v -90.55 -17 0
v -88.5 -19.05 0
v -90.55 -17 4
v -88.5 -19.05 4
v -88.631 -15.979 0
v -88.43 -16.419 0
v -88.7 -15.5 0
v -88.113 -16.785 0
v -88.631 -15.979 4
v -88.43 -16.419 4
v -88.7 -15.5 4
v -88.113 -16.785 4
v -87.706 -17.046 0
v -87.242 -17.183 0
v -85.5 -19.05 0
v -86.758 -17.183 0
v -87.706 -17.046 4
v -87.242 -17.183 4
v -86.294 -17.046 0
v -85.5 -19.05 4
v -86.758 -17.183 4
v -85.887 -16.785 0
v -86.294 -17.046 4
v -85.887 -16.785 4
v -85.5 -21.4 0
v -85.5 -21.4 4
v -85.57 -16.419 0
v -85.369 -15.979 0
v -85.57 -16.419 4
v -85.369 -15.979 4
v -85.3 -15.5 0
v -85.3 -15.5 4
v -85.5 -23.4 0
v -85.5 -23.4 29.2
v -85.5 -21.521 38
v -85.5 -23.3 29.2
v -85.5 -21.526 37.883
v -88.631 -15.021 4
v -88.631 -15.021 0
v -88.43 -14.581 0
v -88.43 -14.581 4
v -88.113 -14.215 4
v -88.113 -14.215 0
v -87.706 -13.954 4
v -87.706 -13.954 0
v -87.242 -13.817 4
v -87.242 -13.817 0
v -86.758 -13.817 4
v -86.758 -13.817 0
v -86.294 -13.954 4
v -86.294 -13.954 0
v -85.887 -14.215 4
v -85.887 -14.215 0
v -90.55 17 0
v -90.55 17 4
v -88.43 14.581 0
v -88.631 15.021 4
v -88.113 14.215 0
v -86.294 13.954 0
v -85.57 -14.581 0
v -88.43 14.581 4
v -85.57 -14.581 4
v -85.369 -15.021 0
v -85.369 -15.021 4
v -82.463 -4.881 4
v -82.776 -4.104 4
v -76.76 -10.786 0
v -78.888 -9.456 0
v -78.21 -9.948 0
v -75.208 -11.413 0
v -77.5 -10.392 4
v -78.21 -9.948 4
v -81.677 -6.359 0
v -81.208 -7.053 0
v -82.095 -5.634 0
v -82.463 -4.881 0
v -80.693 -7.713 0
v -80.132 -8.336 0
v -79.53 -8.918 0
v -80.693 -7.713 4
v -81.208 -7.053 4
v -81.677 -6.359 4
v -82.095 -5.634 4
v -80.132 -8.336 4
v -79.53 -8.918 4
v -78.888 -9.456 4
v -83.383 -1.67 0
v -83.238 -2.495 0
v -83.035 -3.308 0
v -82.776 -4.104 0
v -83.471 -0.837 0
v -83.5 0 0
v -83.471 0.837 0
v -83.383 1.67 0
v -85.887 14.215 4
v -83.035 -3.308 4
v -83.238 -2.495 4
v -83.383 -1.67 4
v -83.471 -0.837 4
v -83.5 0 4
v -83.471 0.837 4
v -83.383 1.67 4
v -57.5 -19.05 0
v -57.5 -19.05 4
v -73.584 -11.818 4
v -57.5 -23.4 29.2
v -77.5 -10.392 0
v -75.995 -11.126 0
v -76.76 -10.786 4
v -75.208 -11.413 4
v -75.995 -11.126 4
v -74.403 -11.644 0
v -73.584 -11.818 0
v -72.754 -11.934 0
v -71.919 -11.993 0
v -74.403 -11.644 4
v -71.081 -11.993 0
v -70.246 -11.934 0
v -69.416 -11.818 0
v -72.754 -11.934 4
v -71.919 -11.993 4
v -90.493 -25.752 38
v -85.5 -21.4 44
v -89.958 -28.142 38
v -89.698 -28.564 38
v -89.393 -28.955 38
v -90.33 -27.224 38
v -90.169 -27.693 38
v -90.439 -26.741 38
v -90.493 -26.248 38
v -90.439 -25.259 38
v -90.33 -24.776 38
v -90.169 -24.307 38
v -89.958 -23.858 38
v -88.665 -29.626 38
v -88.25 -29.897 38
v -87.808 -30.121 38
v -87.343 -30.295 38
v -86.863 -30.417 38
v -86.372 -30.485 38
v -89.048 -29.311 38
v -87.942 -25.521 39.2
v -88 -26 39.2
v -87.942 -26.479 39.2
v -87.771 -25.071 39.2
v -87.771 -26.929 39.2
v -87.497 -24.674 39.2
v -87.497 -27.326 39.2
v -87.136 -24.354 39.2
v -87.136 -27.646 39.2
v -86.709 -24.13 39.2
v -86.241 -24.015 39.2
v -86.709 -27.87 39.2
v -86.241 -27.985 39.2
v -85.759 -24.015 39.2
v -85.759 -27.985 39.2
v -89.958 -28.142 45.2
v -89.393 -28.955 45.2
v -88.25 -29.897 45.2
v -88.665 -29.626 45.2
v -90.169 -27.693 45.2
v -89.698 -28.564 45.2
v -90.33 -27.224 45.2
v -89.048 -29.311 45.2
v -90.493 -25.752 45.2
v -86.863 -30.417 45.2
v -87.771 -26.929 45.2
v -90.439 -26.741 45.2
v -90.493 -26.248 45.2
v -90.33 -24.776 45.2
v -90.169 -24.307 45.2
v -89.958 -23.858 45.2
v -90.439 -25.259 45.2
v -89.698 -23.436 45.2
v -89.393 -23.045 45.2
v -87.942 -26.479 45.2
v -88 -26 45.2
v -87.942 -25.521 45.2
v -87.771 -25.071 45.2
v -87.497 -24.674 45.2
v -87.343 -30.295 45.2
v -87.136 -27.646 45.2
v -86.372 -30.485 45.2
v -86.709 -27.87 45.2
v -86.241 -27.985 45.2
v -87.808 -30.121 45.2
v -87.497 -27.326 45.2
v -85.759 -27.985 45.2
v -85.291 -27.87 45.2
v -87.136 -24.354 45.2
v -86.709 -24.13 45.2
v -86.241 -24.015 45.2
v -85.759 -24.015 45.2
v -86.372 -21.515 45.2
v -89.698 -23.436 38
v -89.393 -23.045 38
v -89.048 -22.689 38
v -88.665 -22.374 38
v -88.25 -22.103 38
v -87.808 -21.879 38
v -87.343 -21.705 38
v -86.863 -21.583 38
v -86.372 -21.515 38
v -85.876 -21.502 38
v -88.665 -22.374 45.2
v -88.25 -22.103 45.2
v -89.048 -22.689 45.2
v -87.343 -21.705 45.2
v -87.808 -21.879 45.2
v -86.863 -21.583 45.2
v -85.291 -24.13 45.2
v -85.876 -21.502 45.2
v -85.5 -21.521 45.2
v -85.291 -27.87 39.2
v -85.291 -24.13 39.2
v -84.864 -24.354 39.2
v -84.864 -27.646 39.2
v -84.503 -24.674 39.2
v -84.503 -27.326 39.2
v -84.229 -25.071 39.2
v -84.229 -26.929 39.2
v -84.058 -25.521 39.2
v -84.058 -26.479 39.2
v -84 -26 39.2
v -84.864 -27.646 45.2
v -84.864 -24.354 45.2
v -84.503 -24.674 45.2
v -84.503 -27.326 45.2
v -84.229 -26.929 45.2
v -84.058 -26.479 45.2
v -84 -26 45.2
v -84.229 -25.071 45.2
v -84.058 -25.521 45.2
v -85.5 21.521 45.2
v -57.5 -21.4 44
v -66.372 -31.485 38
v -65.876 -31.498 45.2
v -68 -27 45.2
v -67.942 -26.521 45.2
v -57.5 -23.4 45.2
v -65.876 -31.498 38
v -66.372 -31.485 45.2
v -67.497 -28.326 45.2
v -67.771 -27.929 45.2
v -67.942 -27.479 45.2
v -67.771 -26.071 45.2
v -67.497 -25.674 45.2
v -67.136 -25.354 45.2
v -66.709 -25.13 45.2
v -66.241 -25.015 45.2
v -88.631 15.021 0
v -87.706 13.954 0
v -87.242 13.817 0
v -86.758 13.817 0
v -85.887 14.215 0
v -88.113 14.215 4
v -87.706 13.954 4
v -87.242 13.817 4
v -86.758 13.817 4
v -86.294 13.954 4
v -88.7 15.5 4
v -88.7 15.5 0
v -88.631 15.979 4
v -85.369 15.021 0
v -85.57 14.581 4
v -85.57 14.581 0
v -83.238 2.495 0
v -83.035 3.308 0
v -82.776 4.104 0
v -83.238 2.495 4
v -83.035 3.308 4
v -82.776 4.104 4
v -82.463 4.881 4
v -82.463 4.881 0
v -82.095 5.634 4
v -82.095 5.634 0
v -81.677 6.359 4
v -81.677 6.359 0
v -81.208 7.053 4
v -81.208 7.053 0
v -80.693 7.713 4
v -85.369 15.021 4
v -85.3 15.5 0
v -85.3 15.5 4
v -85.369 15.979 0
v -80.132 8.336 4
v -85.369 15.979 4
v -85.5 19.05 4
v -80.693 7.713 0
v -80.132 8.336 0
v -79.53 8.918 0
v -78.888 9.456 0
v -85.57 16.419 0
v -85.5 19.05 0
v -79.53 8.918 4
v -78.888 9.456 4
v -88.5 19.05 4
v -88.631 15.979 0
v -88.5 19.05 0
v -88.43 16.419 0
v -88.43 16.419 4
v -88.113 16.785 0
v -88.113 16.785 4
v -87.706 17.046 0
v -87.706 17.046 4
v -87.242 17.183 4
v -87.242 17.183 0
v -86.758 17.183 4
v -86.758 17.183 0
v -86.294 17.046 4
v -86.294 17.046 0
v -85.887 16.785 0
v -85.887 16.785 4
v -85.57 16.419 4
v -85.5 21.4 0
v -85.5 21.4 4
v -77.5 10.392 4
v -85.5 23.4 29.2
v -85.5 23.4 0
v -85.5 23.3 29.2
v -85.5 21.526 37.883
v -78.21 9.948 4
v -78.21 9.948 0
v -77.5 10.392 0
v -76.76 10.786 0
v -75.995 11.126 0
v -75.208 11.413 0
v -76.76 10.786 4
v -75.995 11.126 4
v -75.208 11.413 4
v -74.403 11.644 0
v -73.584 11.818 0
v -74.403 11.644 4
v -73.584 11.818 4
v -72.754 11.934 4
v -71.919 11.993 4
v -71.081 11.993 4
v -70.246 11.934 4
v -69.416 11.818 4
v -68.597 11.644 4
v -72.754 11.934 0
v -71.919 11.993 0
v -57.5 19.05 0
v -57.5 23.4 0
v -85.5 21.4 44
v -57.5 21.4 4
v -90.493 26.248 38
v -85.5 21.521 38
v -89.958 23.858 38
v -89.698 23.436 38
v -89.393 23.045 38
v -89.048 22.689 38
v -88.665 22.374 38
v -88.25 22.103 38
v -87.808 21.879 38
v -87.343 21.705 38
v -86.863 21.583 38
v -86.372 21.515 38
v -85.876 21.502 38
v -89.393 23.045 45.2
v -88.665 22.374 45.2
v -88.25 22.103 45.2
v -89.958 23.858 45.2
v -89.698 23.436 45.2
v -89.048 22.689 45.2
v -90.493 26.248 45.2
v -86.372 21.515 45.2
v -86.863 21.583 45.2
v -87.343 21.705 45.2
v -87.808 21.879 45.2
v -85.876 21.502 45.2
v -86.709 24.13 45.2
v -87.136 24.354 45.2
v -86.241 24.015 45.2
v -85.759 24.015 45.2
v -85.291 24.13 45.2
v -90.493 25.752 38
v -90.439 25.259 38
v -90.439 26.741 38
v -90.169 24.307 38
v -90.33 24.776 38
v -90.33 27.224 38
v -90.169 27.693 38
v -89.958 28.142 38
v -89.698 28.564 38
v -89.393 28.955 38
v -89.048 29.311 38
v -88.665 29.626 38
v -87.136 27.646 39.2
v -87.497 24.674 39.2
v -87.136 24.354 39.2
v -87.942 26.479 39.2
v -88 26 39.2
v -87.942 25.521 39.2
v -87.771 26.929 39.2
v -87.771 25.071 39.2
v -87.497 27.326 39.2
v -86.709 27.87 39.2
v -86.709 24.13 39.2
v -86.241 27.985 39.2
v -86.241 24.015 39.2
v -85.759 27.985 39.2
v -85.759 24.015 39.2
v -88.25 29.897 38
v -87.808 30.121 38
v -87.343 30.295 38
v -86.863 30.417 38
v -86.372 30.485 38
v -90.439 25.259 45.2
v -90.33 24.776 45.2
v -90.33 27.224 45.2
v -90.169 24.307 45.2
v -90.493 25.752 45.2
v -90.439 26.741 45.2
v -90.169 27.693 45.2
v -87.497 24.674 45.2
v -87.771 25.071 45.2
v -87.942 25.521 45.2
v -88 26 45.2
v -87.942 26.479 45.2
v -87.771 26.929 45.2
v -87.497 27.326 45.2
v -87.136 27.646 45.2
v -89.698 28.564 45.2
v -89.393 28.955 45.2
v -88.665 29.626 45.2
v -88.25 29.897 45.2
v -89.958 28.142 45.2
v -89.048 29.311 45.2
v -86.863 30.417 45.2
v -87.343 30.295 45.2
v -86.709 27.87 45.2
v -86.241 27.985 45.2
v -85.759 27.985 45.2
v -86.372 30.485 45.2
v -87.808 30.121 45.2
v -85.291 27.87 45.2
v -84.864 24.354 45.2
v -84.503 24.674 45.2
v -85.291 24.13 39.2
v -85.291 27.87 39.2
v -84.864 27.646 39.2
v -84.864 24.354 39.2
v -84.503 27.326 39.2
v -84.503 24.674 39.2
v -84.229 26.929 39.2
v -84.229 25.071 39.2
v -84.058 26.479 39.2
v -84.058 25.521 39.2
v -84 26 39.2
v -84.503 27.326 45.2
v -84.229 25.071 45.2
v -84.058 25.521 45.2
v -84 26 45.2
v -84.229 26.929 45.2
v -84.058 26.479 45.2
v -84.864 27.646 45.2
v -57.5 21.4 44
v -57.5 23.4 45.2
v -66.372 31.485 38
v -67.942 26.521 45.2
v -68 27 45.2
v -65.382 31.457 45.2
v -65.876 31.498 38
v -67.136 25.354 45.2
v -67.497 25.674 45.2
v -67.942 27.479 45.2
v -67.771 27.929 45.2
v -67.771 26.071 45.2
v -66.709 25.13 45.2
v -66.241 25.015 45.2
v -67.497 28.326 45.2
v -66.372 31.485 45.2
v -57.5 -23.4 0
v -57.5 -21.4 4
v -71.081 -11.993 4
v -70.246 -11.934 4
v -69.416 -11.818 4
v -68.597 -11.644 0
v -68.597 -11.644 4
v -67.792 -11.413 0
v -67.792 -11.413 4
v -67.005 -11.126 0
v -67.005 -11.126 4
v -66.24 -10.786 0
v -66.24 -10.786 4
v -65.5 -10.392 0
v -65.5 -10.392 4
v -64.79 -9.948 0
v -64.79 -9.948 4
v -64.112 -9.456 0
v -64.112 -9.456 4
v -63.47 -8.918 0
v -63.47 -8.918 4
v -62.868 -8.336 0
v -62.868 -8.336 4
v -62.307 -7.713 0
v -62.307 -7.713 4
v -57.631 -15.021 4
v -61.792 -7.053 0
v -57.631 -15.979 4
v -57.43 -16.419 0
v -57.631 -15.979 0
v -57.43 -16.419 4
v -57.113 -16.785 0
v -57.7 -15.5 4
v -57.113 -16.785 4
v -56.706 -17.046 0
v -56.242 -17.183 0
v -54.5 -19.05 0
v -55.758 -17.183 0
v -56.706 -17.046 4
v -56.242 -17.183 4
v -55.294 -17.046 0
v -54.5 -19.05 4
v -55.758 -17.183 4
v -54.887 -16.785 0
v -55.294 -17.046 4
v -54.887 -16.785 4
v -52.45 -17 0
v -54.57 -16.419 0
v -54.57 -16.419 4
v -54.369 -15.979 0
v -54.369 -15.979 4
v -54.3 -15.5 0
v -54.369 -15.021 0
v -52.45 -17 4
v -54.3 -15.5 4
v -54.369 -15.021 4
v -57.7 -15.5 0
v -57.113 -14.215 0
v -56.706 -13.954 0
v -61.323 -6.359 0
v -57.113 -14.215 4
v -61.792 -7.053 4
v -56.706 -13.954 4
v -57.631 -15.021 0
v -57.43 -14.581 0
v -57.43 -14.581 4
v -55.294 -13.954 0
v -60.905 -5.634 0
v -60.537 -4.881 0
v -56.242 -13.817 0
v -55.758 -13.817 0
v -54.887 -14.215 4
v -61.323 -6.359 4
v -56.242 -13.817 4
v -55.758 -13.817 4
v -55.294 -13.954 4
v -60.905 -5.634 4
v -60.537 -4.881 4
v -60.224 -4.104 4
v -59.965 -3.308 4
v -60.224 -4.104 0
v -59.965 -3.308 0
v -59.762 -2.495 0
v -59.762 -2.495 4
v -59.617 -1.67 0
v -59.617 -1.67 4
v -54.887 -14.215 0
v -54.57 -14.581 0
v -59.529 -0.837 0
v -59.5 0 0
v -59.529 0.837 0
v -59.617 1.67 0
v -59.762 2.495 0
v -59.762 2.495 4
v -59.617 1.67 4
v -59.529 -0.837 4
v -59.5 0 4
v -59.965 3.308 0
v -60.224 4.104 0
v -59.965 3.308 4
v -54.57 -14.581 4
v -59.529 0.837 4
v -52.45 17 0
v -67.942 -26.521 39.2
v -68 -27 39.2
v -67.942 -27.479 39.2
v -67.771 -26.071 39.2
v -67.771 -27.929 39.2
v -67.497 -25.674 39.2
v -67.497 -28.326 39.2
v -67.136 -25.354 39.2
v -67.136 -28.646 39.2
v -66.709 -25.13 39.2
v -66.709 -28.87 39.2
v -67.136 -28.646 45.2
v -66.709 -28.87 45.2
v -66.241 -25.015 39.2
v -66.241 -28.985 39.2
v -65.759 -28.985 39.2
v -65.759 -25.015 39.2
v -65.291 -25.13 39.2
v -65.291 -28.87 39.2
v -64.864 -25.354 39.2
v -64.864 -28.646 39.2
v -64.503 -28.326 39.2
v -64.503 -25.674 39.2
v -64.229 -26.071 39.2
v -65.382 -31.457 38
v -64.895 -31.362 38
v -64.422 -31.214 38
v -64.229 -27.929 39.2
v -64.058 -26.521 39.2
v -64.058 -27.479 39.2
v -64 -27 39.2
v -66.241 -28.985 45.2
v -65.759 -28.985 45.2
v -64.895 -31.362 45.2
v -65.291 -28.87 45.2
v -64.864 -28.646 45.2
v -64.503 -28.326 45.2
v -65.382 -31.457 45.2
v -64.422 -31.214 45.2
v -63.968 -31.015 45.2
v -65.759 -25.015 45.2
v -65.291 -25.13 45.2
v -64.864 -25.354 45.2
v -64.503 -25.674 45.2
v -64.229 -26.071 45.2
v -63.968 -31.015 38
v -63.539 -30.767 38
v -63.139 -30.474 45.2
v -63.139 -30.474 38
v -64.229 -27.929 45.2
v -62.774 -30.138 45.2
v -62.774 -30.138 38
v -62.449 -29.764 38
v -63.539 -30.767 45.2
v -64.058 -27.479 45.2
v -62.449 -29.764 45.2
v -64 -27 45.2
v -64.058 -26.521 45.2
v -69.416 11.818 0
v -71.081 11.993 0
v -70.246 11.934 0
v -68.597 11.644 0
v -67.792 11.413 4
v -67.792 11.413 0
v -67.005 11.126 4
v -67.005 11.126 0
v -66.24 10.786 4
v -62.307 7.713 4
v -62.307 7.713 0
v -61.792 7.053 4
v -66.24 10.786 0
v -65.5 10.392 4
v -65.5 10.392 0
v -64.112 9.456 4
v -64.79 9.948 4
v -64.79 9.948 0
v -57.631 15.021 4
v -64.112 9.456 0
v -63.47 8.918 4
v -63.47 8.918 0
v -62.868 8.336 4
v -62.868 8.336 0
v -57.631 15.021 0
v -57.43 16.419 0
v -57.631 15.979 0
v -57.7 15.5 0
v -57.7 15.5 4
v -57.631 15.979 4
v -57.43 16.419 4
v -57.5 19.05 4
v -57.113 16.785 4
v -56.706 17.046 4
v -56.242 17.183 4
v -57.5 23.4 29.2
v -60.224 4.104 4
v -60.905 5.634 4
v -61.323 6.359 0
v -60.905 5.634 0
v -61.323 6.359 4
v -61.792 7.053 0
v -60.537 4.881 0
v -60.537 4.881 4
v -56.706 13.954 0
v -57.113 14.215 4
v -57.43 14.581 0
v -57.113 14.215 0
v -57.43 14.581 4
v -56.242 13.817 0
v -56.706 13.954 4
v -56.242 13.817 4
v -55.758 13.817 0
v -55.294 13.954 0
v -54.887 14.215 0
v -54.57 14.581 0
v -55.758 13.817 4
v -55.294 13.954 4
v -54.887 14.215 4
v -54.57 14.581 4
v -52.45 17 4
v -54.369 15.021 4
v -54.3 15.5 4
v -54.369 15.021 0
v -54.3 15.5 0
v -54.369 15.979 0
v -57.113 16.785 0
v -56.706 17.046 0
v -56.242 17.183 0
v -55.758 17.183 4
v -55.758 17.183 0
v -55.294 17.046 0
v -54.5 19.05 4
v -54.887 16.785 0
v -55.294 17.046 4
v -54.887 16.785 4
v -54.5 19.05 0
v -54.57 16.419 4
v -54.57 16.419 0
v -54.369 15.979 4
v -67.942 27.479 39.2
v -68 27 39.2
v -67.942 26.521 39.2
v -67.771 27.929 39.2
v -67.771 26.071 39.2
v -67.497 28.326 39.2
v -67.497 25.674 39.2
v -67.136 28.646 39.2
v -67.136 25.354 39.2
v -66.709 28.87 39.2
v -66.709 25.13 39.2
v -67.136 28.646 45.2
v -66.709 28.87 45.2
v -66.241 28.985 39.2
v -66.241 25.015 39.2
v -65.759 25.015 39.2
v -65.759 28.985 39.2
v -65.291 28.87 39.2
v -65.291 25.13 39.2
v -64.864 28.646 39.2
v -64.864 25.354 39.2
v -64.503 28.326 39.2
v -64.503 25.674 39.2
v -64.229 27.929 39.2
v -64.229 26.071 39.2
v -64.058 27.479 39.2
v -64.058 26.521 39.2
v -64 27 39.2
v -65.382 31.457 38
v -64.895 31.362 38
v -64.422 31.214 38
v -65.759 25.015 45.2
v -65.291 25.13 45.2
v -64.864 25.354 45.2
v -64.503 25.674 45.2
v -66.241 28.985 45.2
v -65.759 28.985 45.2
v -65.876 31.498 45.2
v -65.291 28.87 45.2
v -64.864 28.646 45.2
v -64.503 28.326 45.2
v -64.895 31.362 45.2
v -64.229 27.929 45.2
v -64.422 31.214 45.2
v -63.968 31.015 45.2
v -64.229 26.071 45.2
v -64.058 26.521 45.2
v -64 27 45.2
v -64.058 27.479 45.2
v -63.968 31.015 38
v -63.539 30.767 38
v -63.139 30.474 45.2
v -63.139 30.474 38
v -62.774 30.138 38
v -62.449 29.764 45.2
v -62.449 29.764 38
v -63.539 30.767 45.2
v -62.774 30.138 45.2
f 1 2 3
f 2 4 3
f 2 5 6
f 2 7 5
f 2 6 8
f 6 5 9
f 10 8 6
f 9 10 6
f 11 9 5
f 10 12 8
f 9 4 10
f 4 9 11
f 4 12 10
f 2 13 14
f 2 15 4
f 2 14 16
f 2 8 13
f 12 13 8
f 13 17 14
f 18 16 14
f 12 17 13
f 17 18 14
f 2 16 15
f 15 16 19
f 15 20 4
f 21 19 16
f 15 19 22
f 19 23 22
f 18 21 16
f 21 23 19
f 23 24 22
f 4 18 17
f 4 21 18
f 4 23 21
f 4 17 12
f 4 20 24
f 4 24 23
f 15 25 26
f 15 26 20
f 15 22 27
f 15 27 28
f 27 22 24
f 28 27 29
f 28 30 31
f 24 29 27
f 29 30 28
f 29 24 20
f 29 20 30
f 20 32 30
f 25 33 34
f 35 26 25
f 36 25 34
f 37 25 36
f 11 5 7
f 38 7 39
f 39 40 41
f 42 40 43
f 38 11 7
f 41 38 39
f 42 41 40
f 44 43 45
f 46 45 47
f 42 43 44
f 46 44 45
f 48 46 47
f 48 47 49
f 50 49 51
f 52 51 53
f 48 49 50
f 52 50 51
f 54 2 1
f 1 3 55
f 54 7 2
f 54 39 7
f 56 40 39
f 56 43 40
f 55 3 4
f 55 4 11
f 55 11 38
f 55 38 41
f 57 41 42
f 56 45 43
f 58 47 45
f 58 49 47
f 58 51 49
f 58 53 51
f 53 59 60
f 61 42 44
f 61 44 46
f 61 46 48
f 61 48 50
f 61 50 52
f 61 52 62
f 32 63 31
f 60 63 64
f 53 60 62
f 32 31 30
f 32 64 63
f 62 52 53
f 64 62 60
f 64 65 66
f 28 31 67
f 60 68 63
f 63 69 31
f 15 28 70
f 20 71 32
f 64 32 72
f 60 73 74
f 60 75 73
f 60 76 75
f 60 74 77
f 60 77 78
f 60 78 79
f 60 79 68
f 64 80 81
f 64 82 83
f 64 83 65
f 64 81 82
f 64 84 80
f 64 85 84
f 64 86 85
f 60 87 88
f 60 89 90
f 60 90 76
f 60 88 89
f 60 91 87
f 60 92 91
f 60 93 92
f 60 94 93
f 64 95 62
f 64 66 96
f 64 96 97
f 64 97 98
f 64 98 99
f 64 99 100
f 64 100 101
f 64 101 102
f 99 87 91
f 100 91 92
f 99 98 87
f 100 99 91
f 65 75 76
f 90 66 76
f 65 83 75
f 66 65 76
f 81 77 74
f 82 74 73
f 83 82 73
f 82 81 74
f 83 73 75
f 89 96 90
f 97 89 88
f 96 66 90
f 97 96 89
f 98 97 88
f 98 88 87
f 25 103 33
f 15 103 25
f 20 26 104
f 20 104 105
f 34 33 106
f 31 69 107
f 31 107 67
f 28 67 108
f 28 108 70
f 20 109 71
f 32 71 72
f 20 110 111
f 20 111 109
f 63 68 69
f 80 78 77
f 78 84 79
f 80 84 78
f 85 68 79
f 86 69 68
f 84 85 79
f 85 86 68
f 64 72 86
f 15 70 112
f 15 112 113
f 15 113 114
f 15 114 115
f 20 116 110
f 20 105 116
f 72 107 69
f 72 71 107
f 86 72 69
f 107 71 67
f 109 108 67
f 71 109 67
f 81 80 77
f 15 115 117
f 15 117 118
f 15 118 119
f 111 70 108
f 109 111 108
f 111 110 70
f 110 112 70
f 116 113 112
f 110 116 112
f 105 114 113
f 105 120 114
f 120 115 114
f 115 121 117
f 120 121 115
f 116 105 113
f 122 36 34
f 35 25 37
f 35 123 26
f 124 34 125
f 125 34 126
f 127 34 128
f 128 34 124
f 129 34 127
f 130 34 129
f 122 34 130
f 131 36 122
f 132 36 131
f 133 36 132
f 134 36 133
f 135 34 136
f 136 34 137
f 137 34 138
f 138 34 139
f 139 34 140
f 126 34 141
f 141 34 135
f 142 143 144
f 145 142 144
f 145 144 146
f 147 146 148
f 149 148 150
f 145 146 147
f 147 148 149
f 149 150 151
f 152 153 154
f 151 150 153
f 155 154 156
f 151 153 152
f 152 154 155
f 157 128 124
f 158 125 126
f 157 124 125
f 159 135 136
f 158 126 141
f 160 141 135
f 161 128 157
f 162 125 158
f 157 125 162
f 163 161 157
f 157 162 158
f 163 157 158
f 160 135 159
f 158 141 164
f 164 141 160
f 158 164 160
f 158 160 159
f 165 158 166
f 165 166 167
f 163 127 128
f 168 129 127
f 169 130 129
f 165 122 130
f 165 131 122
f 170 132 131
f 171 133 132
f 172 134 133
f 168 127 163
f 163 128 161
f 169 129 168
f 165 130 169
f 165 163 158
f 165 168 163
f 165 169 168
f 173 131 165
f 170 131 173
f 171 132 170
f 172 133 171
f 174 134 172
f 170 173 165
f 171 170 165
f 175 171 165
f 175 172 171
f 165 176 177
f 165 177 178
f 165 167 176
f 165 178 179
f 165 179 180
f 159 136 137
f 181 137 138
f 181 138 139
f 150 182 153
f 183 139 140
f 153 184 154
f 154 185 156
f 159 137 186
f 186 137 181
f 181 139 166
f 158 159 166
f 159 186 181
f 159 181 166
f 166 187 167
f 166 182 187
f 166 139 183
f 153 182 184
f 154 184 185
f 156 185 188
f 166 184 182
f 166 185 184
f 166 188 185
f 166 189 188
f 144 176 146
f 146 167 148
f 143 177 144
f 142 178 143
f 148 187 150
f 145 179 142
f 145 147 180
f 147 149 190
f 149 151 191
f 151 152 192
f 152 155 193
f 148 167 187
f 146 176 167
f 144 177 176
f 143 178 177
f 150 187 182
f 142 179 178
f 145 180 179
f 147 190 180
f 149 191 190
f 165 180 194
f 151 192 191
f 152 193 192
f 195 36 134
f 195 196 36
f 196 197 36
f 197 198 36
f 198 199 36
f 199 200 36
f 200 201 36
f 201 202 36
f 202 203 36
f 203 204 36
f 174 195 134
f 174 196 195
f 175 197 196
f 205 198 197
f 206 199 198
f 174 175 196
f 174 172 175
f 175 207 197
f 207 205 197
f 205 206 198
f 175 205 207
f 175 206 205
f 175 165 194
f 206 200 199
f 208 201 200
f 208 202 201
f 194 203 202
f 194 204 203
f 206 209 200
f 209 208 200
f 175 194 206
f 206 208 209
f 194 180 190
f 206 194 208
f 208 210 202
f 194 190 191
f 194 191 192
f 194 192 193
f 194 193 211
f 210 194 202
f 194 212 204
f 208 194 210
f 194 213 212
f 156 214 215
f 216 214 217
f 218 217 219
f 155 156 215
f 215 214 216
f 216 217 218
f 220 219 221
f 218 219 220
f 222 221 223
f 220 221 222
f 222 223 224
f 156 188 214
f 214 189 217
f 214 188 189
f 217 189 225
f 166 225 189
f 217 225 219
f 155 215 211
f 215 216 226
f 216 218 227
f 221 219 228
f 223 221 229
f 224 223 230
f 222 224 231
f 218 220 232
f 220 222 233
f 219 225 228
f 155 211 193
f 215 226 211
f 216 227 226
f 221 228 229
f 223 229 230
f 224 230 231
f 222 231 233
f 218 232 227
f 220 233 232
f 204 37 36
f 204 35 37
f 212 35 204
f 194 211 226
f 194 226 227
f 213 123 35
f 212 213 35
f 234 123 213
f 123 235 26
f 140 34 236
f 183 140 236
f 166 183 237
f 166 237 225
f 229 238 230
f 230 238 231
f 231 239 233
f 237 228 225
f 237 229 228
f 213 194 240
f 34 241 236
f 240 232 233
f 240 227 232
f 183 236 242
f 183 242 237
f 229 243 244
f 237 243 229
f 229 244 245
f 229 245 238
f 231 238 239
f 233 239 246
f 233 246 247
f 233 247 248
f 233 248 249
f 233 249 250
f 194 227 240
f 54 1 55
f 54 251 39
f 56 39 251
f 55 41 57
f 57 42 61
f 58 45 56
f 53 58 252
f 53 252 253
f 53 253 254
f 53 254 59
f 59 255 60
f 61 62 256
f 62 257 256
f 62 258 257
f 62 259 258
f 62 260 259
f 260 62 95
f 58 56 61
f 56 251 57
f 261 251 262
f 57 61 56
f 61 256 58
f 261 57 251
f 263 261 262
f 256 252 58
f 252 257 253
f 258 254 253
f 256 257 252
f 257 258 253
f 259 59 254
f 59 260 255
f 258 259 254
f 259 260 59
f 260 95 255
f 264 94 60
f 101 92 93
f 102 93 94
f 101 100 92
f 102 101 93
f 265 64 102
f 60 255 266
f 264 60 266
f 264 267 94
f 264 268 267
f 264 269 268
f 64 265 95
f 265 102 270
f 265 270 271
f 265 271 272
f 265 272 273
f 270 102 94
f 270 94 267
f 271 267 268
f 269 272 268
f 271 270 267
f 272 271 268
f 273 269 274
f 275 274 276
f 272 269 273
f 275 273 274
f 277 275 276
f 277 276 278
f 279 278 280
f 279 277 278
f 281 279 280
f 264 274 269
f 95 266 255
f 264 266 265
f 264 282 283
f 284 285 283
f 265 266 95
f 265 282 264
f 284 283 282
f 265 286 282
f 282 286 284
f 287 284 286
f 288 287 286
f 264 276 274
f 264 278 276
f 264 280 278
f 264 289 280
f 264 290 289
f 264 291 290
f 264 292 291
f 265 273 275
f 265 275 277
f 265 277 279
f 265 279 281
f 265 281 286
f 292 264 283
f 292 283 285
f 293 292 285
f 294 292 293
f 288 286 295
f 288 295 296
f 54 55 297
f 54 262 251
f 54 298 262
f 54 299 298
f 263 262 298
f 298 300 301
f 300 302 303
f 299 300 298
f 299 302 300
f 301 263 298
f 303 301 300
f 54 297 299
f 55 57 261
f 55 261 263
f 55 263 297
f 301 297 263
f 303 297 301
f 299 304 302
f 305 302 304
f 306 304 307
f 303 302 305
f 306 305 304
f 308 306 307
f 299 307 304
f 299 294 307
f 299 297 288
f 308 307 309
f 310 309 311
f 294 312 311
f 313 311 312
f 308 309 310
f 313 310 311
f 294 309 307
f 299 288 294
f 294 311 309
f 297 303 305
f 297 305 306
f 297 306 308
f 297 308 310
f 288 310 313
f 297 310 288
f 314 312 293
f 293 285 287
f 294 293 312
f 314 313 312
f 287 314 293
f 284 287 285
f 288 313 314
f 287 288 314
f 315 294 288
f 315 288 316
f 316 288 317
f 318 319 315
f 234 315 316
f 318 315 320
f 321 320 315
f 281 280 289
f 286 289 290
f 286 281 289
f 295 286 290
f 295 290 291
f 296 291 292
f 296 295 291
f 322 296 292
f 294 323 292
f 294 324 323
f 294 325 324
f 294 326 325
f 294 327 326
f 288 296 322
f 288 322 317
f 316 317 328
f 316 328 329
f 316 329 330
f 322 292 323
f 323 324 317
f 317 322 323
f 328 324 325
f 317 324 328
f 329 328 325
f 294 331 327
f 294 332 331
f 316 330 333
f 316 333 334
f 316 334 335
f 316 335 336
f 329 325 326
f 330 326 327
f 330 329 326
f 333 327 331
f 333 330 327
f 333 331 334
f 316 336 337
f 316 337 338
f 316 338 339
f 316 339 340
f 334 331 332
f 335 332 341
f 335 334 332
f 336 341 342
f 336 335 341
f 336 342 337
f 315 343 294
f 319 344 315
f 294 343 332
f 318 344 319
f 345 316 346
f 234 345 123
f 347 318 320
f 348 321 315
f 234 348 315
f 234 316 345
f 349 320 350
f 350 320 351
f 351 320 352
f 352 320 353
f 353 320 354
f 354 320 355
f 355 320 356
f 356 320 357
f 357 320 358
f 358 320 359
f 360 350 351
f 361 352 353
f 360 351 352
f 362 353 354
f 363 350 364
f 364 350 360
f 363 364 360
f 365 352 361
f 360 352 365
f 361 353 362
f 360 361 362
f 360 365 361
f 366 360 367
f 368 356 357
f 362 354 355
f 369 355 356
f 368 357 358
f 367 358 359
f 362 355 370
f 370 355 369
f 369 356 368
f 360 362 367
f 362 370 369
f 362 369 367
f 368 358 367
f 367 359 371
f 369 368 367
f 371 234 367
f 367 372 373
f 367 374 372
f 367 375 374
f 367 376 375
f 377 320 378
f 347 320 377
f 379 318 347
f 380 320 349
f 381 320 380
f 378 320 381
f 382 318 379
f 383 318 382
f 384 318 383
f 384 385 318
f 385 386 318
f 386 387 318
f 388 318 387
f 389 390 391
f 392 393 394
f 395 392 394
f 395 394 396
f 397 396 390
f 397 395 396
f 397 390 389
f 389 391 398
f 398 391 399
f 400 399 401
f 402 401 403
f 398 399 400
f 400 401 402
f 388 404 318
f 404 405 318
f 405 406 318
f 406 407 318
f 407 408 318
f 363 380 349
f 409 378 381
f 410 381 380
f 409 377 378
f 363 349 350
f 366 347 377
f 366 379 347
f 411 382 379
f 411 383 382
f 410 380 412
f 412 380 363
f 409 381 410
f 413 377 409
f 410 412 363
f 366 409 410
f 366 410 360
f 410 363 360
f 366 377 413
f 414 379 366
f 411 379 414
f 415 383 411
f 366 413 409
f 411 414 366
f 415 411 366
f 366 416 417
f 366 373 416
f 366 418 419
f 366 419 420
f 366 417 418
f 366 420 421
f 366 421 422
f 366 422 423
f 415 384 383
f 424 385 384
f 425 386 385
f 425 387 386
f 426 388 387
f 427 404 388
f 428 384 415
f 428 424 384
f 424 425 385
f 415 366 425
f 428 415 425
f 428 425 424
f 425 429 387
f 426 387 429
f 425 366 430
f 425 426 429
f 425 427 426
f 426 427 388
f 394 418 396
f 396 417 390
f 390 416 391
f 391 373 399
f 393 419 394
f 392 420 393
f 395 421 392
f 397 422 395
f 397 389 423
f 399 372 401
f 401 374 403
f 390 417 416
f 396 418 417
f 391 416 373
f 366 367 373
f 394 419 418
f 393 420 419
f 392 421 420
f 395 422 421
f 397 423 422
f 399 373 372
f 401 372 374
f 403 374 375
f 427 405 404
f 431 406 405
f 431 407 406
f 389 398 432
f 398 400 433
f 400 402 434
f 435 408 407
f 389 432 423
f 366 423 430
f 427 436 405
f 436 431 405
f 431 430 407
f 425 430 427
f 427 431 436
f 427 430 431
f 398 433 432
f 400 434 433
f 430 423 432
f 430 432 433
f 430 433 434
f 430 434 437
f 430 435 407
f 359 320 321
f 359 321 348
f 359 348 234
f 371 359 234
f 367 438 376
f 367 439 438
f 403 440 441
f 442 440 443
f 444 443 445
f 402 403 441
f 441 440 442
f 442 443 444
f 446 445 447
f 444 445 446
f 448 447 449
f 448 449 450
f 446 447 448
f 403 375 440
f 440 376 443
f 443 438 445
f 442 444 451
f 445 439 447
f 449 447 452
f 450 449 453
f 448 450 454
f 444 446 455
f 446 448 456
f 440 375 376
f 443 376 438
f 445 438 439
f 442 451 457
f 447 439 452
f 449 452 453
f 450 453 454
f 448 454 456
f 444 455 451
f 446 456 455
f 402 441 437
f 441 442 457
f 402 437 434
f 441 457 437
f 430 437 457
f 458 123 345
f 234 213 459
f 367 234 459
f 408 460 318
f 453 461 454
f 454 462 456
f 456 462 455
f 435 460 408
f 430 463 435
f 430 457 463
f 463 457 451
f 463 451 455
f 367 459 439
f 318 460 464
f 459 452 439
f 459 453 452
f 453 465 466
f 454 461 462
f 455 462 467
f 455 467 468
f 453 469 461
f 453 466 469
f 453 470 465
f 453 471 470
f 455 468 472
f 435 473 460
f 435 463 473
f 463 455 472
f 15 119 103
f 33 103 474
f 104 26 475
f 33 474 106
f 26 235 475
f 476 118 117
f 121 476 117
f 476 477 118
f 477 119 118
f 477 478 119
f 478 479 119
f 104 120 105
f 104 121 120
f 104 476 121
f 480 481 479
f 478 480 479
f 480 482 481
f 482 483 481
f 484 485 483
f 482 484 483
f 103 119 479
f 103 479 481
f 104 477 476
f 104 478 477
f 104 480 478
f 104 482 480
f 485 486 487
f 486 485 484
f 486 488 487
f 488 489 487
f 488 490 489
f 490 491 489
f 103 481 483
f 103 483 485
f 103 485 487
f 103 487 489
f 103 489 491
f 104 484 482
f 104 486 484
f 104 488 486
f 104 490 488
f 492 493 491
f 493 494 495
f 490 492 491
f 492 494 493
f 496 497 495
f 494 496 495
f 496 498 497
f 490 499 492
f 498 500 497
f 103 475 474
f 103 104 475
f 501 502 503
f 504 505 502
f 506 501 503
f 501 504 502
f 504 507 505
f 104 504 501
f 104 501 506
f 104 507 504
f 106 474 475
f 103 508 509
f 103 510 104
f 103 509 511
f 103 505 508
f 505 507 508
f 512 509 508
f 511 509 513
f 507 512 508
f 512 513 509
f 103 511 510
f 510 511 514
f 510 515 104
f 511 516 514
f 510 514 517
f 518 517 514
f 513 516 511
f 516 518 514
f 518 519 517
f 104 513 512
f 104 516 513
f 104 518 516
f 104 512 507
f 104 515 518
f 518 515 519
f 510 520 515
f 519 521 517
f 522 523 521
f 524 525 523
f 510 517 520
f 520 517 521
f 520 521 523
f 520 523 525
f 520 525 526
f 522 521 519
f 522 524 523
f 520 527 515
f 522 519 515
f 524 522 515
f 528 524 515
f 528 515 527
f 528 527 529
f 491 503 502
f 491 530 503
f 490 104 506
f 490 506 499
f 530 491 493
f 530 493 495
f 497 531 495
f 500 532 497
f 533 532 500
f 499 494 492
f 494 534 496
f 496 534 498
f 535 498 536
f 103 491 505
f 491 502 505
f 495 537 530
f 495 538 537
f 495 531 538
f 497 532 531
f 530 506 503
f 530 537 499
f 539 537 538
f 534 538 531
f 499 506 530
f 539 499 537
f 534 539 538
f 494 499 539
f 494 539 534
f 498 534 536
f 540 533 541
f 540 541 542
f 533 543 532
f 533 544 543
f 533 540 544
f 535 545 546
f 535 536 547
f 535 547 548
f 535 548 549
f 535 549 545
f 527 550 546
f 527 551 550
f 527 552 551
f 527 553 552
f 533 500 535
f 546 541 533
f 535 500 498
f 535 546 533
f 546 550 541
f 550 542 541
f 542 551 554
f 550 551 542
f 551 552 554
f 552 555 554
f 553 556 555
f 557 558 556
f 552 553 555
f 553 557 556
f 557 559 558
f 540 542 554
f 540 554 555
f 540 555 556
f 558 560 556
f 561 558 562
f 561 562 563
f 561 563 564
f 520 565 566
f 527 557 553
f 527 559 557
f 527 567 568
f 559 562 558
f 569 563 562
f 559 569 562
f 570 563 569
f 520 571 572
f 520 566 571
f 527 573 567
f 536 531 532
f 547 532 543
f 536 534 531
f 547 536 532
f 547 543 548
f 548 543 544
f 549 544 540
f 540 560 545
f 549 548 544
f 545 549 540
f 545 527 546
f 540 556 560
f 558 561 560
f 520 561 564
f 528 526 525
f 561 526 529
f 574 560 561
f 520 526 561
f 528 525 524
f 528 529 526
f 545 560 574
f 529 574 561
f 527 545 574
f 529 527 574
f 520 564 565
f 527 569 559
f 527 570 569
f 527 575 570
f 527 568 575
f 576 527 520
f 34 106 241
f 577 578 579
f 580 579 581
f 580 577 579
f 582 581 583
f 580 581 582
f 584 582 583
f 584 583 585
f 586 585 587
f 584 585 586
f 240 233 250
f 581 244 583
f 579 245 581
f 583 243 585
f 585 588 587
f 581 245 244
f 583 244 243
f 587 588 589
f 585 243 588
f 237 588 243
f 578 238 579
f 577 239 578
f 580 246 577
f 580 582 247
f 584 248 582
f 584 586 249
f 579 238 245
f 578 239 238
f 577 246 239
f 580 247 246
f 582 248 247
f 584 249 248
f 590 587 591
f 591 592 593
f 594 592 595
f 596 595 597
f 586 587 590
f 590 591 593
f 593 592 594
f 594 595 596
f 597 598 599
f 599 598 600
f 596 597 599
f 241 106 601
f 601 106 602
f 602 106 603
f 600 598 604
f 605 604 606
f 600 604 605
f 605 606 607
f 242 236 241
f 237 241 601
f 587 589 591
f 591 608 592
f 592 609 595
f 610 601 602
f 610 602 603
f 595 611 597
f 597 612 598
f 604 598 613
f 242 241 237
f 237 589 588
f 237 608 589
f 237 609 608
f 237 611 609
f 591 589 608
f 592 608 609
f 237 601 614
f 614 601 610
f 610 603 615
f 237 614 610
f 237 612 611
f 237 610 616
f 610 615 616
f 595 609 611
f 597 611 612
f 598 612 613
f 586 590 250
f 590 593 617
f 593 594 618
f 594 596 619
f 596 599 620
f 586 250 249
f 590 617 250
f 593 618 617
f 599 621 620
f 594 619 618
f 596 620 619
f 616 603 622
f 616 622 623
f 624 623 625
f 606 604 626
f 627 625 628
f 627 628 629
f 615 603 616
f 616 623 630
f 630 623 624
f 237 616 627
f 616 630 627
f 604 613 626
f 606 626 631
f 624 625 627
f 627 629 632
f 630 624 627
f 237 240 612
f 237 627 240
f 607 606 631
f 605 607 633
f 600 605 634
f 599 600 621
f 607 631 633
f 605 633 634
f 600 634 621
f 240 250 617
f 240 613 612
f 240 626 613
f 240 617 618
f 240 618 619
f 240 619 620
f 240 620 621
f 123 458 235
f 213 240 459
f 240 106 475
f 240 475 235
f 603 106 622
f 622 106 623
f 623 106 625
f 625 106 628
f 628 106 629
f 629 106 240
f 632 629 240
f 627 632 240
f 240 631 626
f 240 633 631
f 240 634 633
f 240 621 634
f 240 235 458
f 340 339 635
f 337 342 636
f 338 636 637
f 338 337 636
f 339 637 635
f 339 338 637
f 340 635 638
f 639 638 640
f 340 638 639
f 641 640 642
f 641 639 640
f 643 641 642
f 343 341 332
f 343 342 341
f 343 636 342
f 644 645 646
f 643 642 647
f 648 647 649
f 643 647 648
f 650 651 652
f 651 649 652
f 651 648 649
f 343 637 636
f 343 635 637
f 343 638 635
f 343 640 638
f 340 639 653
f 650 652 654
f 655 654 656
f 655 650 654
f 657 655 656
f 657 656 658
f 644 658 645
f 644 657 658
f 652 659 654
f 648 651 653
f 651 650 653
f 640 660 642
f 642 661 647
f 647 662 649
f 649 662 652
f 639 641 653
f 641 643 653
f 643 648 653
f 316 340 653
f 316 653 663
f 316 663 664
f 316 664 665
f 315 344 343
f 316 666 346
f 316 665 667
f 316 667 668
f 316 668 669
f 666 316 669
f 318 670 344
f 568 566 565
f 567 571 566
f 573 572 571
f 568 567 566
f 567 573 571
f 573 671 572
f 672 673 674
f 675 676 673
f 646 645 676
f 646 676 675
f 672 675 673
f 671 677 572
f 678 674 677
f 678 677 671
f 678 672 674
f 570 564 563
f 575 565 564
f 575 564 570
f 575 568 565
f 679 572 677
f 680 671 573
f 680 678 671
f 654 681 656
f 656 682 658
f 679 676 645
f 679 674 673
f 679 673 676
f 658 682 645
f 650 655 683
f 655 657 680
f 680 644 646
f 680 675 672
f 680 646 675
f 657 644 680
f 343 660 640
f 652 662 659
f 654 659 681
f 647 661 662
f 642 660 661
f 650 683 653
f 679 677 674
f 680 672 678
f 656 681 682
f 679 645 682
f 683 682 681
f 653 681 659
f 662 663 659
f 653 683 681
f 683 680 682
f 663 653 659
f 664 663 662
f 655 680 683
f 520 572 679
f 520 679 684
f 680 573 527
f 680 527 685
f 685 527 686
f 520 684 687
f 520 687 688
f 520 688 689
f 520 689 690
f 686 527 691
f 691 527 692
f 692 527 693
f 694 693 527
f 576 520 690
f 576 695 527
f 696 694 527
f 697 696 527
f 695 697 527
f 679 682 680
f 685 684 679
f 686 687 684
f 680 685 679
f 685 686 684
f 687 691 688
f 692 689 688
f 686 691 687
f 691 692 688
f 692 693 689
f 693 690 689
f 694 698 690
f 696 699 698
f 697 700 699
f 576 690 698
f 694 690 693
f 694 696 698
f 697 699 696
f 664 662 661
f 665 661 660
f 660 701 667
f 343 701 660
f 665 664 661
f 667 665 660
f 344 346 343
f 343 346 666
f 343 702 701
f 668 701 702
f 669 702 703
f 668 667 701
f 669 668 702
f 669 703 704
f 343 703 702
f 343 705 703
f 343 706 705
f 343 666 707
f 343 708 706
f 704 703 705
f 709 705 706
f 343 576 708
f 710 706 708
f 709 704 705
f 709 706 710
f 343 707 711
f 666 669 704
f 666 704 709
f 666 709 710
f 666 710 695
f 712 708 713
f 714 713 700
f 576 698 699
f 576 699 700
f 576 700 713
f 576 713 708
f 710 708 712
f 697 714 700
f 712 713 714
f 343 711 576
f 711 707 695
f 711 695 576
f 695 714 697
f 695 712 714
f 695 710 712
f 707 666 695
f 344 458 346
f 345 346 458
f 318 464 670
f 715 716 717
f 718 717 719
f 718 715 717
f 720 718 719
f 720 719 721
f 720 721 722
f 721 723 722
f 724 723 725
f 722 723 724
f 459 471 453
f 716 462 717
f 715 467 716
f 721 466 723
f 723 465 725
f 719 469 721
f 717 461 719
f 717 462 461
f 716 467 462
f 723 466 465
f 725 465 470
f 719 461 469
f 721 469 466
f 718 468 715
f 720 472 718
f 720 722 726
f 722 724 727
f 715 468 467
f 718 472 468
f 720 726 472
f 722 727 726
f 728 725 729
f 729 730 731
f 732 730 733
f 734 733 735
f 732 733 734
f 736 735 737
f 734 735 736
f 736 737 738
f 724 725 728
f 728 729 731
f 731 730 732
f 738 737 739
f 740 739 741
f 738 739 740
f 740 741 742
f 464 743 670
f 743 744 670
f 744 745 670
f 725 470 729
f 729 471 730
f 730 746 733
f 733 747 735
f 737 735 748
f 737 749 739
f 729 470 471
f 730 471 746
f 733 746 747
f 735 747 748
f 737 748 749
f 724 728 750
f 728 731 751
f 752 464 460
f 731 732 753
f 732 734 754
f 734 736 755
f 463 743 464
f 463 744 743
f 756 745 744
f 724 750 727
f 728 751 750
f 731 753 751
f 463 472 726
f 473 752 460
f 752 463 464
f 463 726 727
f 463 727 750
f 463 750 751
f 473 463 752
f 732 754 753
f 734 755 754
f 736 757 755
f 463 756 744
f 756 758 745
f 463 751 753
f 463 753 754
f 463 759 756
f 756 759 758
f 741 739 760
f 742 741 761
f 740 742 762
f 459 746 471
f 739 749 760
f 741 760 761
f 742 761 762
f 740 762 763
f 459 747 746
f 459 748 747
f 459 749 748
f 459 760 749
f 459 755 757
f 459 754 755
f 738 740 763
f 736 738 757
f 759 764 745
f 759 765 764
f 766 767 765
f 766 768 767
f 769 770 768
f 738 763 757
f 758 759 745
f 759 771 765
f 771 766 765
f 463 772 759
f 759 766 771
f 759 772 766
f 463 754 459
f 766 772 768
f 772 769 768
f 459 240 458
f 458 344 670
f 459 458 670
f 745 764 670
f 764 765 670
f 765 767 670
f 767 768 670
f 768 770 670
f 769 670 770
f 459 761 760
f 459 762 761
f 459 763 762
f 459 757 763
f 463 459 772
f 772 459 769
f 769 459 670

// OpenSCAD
// file: lib/lib.scad
// Shared helpers. Include AFTER params.scad (needs TOL, M3_* etc.).
$fa = 4; $fs = 0.5;

module rrect(size, r) {            // 2D rounded rectangle, centred
    r2 = min(r, min(size[0], size[1]) / 2 - 0.001);
    offset(r = r2) square([size[0] - 2 * r2, size[1] - 2 * r2], center = true);
}
module rbox(size, r, center_xy = true) {   // box with rounded vertical edges
    translate(center_xy ? [0, 0, 0] : [size[0] / 2, size[1] / 2, 0])
        linear_extrude(size[2]) rrect([size[0], size[1]], r);
}
module rbox_at(x0, x1, y0, y1, z0, z1, r = 0.01) {
    translate([(x0 + x1) / 2, (y0 + y1) / 2, z0]) rbox([x1 - x0, y1 - y0, z1 - z0], r);
}
module box_at(x0, x1, y0, y1, z0, z1) { translate([x0, y0, z0]) cube([x1 - x0, y1 - y0, z1 - z0]); }

module ring(ro, ri, h) { difference() { cylinder(r = ro, h = h); translate([0, 0, -1]) cylinder(r = ri, h = h + 2); } }
module ring_sector(ro, ri, h, a0, a1) {
    intersection() {
        ring(ro, ri, h);
        linear_extrude(h) polygon(concat([[0, 0]], [for (a = [a0 : (a1 - a0) / 24 : a1]) 2 * ro * [cos(a), sin(a)]]));
    }
}
// teardrop hole along an axis lying horizontal (axis = Y after rotation), printable w/o support
module teardrop2d(d) { union() { circle(d = d); rotate(45) square(d / 2); } }
// vertical heat-set insert hole, opening at z=0 going +z (depth l)
module insert_hole(l = M3_INSERT_L) { translate([0, 0, -EPS]) cylinder(d = M3_INSERT_D, h = l + EPS); }
module m3_clear(l) { translate([0, 0, -EPS]) cylinder(d = M3_CLEAR, h = l + 2 * EPS); }
module m3_csk(l) {  // countersunk clearance from z=0 upward, head at z=0 side
    translate([0, 0, -EPS]) { cylinder(d = M3_CLEAR, h = l + 2 * EPS); cylinder(d1 = 6.4, d2 = M3_CLEAR, h = 1.7); }
}
module card2d() { rrect([CARD_L, CARD_W], CARD_R); }
module card_at(cy, z) { translate([0, cy, z]) linear_extrude(CARD_T) card2d(); }

// ---- gears ----
function _inv(a) = tan(a) - a * PI_ / 180;           // involute function, a in deg
function _invpt(rb, r, ang0, s) = let(al = acos(rb / r), th = ang0 - s * (_inv(al) * 180 / PI_)) [r * cos(th), r * sin(th)];
module involute_gear2d(m, z, pa = 20, clearance = 0.05) {
    rp = m * z / 2; rb = rp * cos(pa); ra = rp + m - clearance; rf = rp - 1.25 * m;
    half = 90 / z + _inv(pa) * 180 / PI_;            // tooth half-angle at base (deg)
    n = 8;
    rs = [for (i = [0 : n]) max(rb, rf) + (ra - max(rb, rf)) * i / n];
    union() {
        circle(r = rf, $fn = z * 4);
        for (k = [0 : z - 1]) rotate(k * 360 / z) polygon(concat(
            [[rf * cos(-half), rf * sin(-half)]],
            [for (r = rs) let(p = _invpt(rb, r, half, 1)) [p[0], -p[1]]],
            [for (i = [n : -1 : 0]) _invpt(rb, rs[i], half, 1)],
            [[rf * cos(half), rf * sin(half)]]));
    }
}
// straight gear rack (2D in XY: teeth along +x, pointing -y, pitch line at y=0)
module gear_rack2d(m, len, back = 3) {
    p = PI_ * m; ad = m; de = 1.25 * m; t = tan(20);
    n = ceil(len / p) + 1;
    intersection() {
        union() {
            translate([0, de]) square([len, back]);
            for (i = [0 : n]) translate([i * p - p / 4, 0]) polygon([
                [-(p / 4 + de * t), de + 0.01], [p / 4 + de * t + 0.01, de + 0.01],
                [p / 4 - ad * t, -ad], [-(p / 4 - ad * t), -ad] ]);
        }
        translate([0, -ad - 1]) square([len, ad + de + back + 2]);
    }
}
// GT2 belt-tooth profile ring (teeth outward), 2D
module gt2_ring2d(n, r_land, ri) {
    union() {
        difference() { circle(r = r_land + 0.01, $fn = n * 2); circle(r = ri, $fn = n * 2); }
        for (k = [0 : n - 1]) rotate(k * 360 / n)
            translate([r_land, 0]) hull() { translate([-0.2, 0]) square([0.2, 1.0], center = true); translate([0.25, 0]) circle(r = 0.5, $fn = 12); }
    }
}
// main file
// Rack NEMA17 (integrated T8) mount: motor stands face-up on a 1.2 mm seat, plate on the
// motor face (4 x M3), two side legs, 45 deg wedge feet to the turntable (4 x CSK M3 from below).
// Print: upside down (face plate on bed): the seat is one solid 43 mm bridge between the legs,
// the feet are 45 deg wedges; no supports.
include <params.scad>
include <lib/lib.scad>
LMM_LX0 = LM_X - 14; LMM_LX1 = LM_X + 14;     // leg X span
LMM_YL  = NEMA_W / 2 + 1.25 * GAP;                   // leg inner |Y|
module lmm_plate2d() union() {
    translate([LM_X, LM_Y]) offset(delta = 3.5, chamfer = true) square(2 * 15.5 + 0.1, center = true);   // geom
    translate([(LMM_LX0 + LMM_LX1) / 2, LM_Y]) square([LMM_LX1 - LMM_LX0, 2 * (LMM_YL + 2)], center = true);
}
module rack_motor_mount() difference() {
    union() {
        translate([0, 0, LM_FACE]) linear_extrude(LM_PLATE_T) lmm_plate2d();
        for (s = [-1, 1]) box_at(LMM_LX0, LMM_LX1, s > 0 ? LMM_YL : -LMM_YL - 2, s > 0 ? LMM_YL + 2 : -LMM_YL, TT_TOP, LM_FACE + LM_PLATE_T);
        box_at(LMM_LX0, LMM_LX1, -LMM_YL - 2, LMM_YL + 2, TT_TOP, LM_Z0);            // seat (solid bridge in print)
        for (s = [-1, 1]) hull() {                                                   // wedge feet
            for (p = FIX_LMM) if (sign(p[1]) == s) translate([p[0], p[1], TT_TOP]) cylinder(d = 9, h = M3_INSERT_L + 1.2);
            box_at(LMM_LX0, LMM_LX1, s > 0 ? LMM_YL + 1.9 : -LMM_YL - 2, s > 0 ? LMM_YL + 2 : -LMM_YL - 1.9, TT_TOP, TT_TOP + 16);
        }
    }
    translate([LM_X, LM_Y, LM_FACE - 1]) cylinder(d = fit_free(NEMA_BOSS_D) + 1.6, h = 10);
    for (x = [-1, 1], y = [-1, 1]) translate([LM_X + x * NEMA_HOLE / 2, LM_Y + y * NEMA_HOLE / 2, LM_FACE]) m3_clear(LM_PLATE_T);
    for (p = FIX_LMM) translate([p[0], p[1], TT_TOP]) insert_hole();
    translate([LM_X, 0, LM_Z0]) box_at(-NEMA_W / 2 - 1, NEMA_W / 2 + 1, -LMM_YL, LMM_YL, 0, LM_FACE - LM_Z0);  // motor body space
}
module rack_motor_mount_print() translate([0, 0, LM_FACE + LM_PLATE_T]) rotate([180, 0, 0]) rack_motor_mount();
rack_motor_mount_print();
